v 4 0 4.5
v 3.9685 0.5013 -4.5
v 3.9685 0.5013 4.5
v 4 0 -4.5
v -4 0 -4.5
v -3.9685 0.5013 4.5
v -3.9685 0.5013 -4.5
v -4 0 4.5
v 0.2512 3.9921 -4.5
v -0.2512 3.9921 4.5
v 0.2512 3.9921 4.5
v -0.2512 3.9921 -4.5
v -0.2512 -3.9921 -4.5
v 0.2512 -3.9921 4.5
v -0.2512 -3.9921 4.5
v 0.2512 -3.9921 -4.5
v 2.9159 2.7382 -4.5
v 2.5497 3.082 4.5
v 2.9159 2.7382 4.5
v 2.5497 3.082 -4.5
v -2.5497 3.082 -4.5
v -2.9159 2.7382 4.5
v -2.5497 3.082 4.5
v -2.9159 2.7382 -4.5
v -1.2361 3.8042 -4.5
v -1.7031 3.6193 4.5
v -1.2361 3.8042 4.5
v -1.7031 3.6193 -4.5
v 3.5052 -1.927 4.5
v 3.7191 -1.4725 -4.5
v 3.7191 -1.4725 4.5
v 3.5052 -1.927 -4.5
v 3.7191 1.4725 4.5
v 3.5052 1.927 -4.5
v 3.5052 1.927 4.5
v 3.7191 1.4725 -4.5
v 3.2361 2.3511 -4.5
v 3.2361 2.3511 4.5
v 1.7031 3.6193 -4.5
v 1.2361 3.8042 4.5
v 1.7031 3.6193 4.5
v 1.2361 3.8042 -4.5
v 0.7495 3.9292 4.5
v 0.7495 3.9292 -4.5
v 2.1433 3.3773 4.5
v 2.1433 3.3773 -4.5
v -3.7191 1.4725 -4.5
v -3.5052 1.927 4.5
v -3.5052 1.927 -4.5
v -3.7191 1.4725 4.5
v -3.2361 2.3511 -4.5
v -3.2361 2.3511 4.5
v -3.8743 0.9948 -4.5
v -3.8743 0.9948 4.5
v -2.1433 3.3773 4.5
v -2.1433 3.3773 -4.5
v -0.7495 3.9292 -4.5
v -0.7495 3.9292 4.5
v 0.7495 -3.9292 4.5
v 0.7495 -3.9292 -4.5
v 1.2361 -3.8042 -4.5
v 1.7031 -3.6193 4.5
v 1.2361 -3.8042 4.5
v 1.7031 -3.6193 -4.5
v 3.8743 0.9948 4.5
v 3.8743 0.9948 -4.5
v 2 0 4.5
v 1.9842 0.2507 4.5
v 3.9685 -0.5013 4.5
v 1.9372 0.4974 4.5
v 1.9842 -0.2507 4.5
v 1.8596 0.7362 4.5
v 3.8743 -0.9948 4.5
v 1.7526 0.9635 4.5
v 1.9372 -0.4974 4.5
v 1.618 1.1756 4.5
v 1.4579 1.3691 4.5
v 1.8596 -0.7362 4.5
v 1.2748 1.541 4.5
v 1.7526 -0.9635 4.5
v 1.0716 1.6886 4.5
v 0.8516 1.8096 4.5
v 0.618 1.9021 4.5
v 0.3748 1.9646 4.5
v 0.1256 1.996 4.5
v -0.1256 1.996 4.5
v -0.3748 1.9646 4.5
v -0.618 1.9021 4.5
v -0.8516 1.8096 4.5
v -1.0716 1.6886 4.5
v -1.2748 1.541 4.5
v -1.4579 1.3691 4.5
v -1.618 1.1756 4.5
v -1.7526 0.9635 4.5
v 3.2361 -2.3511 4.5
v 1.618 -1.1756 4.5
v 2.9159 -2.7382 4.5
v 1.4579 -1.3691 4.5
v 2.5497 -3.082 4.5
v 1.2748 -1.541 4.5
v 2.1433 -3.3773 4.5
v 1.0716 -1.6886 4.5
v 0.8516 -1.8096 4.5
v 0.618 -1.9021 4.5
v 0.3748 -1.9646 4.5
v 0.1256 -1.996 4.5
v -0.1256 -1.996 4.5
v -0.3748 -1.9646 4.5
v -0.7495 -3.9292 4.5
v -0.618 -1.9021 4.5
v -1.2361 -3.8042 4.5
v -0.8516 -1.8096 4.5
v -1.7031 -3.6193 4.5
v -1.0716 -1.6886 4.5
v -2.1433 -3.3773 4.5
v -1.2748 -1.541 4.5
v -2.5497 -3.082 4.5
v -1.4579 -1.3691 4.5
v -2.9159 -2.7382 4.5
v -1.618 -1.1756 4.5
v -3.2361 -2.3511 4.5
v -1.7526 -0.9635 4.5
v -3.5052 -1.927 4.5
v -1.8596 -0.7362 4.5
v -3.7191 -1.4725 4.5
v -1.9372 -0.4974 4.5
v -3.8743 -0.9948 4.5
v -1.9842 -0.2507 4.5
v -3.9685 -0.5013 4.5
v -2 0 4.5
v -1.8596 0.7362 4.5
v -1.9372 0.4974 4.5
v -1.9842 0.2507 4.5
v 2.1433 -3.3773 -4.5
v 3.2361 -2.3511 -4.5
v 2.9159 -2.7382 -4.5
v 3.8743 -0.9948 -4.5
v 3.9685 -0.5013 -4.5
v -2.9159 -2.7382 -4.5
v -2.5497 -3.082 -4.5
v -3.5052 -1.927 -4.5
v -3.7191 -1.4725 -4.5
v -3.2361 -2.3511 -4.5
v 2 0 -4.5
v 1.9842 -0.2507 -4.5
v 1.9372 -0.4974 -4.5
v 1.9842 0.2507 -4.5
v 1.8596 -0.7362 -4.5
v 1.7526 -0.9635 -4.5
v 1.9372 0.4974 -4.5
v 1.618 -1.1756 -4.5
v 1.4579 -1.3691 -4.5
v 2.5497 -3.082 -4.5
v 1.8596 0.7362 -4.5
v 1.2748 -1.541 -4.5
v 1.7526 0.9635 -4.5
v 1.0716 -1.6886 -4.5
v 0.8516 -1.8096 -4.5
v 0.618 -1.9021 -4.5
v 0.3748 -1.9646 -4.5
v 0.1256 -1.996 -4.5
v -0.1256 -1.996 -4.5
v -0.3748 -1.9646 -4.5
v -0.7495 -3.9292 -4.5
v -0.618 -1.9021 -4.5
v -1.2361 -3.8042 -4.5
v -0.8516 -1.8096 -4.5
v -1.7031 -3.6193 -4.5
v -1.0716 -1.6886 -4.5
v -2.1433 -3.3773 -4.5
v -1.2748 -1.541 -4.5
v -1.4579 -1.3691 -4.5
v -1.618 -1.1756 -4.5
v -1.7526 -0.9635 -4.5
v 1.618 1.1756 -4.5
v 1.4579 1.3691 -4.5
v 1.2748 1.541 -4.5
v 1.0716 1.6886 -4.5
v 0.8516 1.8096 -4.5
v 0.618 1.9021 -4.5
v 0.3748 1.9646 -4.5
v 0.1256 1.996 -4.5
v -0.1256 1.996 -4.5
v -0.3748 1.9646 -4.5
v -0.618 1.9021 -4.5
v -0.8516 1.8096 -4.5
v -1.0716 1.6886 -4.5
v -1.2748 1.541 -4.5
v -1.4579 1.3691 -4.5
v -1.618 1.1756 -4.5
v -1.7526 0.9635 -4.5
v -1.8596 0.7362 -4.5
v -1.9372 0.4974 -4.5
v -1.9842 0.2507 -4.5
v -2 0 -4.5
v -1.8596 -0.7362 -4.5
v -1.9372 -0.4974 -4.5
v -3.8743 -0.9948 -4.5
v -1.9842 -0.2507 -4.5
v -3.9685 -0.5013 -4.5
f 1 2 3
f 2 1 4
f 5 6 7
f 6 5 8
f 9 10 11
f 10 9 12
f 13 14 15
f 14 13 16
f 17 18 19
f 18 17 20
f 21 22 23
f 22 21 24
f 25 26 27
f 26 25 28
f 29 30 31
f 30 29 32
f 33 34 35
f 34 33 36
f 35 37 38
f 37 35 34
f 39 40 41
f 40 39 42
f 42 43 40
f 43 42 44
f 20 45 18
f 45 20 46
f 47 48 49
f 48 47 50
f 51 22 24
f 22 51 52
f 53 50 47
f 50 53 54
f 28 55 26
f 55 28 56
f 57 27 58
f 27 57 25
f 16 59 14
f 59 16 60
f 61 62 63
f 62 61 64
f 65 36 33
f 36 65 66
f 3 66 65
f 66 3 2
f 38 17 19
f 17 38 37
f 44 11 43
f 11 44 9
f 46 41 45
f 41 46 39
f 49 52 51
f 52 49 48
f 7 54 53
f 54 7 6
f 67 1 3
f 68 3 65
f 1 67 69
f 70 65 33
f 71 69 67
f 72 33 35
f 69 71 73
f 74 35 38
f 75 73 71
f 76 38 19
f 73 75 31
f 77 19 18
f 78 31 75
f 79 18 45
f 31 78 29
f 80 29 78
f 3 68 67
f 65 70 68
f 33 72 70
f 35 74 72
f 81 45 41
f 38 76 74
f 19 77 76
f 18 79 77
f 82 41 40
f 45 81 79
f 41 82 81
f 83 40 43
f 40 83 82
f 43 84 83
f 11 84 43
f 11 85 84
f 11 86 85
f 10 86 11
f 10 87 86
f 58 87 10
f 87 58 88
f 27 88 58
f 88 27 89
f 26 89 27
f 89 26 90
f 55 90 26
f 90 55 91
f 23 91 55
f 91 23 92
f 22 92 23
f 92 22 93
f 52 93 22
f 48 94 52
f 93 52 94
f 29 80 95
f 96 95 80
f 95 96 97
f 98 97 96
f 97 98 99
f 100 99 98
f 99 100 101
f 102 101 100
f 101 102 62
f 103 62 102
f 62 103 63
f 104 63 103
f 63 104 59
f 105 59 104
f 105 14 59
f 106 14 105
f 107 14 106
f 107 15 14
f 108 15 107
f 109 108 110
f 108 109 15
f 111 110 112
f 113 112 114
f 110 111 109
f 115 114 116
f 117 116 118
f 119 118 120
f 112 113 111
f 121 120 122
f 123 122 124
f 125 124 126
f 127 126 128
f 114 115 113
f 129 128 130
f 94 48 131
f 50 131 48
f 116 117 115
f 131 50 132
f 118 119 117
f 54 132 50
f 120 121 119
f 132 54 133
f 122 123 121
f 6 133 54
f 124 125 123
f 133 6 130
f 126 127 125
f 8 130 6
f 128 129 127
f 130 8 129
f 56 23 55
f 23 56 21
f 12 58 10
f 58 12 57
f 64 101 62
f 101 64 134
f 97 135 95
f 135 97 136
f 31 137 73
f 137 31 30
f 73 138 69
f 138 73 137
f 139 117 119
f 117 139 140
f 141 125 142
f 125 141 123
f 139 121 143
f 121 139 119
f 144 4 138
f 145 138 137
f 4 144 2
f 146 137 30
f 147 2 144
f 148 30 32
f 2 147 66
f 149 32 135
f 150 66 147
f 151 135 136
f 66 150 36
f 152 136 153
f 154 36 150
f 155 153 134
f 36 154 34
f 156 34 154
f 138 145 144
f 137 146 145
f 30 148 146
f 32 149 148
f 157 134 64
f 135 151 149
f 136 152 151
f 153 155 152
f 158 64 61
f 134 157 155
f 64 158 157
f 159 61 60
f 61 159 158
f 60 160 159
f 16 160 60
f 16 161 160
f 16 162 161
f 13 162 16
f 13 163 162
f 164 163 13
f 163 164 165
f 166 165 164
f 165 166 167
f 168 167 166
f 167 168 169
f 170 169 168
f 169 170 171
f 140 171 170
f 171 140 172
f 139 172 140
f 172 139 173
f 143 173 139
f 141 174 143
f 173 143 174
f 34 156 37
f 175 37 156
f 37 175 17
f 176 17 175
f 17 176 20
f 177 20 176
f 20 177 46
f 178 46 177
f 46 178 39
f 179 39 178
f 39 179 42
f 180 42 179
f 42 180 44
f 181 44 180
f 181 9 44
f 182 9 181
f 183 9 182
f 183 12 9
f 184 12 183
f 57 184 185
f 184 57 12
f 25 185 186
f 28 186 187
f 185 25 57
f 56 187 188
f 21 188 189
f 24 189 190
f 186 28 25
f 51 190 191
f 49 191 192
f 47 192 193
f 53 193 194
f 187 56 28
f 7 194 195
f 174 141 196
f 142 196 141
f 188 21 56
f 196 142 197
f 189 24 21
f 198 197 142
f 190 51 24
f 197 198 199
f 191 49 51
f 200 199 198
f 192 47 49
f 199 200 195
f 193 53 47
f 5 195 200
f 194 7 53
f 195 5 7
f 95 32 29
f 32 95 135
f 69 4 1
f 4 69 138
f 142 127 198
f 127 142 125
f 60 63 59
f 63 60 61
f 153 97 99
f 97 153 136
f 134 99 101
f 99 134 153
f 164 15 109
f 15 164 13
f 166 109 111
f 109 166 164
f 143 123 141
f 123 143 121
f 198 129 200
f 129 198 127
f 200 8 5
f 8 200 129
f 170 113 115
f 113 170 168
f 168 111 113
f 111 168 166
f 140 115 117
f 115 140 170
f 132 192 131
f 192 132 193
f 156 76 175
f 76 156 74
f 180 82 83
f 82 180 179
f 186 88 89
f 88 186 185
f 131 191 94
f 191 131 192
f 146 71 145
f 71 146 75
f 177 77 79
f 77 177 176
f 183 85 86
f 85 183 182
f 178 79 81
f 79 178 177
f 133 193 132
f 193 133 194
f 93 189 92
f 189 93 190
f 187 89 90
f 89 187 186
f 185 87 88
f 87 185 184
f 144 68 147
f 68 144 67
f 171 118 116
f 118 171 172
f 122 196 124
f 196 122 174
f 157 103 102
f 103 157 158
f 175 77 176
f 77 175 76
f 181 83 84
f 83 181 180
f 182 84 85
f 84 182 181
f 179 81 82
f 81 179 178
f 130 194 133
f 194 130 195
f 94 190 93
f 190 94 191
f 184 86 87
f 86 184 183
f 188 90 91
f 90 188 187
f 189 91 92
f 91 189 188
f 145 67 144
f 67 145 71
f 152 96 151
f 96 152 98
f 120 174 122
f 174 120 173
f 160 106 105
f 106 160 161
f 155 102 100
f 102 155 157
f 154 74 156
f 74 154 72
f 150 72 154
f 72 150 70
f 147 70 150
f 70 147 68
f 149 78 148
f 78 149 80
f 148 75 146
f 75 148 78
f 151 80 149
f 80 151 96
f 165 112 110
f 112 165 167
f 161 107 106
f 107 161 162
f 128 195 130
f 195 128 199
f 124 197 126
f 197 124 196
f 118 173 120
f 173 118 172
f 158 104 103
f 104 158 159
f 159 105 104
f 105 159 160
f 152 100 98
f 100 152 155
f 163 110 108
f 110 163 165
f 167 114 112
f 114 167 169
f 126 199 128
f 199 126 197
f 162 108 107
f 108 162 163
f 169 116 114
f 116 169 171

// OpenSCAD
$fn = 50;


difference() {
	union() {
		translate(v = [0, 0, -4.5000000000]) {
			cylinder(h = 9, r = 4.0000000000);
		}
	}
	union() {
		translate(v = [0, 0, -100.0000000000]) {
			cylinder(h = 200, r = 2);
		}
	}
}
